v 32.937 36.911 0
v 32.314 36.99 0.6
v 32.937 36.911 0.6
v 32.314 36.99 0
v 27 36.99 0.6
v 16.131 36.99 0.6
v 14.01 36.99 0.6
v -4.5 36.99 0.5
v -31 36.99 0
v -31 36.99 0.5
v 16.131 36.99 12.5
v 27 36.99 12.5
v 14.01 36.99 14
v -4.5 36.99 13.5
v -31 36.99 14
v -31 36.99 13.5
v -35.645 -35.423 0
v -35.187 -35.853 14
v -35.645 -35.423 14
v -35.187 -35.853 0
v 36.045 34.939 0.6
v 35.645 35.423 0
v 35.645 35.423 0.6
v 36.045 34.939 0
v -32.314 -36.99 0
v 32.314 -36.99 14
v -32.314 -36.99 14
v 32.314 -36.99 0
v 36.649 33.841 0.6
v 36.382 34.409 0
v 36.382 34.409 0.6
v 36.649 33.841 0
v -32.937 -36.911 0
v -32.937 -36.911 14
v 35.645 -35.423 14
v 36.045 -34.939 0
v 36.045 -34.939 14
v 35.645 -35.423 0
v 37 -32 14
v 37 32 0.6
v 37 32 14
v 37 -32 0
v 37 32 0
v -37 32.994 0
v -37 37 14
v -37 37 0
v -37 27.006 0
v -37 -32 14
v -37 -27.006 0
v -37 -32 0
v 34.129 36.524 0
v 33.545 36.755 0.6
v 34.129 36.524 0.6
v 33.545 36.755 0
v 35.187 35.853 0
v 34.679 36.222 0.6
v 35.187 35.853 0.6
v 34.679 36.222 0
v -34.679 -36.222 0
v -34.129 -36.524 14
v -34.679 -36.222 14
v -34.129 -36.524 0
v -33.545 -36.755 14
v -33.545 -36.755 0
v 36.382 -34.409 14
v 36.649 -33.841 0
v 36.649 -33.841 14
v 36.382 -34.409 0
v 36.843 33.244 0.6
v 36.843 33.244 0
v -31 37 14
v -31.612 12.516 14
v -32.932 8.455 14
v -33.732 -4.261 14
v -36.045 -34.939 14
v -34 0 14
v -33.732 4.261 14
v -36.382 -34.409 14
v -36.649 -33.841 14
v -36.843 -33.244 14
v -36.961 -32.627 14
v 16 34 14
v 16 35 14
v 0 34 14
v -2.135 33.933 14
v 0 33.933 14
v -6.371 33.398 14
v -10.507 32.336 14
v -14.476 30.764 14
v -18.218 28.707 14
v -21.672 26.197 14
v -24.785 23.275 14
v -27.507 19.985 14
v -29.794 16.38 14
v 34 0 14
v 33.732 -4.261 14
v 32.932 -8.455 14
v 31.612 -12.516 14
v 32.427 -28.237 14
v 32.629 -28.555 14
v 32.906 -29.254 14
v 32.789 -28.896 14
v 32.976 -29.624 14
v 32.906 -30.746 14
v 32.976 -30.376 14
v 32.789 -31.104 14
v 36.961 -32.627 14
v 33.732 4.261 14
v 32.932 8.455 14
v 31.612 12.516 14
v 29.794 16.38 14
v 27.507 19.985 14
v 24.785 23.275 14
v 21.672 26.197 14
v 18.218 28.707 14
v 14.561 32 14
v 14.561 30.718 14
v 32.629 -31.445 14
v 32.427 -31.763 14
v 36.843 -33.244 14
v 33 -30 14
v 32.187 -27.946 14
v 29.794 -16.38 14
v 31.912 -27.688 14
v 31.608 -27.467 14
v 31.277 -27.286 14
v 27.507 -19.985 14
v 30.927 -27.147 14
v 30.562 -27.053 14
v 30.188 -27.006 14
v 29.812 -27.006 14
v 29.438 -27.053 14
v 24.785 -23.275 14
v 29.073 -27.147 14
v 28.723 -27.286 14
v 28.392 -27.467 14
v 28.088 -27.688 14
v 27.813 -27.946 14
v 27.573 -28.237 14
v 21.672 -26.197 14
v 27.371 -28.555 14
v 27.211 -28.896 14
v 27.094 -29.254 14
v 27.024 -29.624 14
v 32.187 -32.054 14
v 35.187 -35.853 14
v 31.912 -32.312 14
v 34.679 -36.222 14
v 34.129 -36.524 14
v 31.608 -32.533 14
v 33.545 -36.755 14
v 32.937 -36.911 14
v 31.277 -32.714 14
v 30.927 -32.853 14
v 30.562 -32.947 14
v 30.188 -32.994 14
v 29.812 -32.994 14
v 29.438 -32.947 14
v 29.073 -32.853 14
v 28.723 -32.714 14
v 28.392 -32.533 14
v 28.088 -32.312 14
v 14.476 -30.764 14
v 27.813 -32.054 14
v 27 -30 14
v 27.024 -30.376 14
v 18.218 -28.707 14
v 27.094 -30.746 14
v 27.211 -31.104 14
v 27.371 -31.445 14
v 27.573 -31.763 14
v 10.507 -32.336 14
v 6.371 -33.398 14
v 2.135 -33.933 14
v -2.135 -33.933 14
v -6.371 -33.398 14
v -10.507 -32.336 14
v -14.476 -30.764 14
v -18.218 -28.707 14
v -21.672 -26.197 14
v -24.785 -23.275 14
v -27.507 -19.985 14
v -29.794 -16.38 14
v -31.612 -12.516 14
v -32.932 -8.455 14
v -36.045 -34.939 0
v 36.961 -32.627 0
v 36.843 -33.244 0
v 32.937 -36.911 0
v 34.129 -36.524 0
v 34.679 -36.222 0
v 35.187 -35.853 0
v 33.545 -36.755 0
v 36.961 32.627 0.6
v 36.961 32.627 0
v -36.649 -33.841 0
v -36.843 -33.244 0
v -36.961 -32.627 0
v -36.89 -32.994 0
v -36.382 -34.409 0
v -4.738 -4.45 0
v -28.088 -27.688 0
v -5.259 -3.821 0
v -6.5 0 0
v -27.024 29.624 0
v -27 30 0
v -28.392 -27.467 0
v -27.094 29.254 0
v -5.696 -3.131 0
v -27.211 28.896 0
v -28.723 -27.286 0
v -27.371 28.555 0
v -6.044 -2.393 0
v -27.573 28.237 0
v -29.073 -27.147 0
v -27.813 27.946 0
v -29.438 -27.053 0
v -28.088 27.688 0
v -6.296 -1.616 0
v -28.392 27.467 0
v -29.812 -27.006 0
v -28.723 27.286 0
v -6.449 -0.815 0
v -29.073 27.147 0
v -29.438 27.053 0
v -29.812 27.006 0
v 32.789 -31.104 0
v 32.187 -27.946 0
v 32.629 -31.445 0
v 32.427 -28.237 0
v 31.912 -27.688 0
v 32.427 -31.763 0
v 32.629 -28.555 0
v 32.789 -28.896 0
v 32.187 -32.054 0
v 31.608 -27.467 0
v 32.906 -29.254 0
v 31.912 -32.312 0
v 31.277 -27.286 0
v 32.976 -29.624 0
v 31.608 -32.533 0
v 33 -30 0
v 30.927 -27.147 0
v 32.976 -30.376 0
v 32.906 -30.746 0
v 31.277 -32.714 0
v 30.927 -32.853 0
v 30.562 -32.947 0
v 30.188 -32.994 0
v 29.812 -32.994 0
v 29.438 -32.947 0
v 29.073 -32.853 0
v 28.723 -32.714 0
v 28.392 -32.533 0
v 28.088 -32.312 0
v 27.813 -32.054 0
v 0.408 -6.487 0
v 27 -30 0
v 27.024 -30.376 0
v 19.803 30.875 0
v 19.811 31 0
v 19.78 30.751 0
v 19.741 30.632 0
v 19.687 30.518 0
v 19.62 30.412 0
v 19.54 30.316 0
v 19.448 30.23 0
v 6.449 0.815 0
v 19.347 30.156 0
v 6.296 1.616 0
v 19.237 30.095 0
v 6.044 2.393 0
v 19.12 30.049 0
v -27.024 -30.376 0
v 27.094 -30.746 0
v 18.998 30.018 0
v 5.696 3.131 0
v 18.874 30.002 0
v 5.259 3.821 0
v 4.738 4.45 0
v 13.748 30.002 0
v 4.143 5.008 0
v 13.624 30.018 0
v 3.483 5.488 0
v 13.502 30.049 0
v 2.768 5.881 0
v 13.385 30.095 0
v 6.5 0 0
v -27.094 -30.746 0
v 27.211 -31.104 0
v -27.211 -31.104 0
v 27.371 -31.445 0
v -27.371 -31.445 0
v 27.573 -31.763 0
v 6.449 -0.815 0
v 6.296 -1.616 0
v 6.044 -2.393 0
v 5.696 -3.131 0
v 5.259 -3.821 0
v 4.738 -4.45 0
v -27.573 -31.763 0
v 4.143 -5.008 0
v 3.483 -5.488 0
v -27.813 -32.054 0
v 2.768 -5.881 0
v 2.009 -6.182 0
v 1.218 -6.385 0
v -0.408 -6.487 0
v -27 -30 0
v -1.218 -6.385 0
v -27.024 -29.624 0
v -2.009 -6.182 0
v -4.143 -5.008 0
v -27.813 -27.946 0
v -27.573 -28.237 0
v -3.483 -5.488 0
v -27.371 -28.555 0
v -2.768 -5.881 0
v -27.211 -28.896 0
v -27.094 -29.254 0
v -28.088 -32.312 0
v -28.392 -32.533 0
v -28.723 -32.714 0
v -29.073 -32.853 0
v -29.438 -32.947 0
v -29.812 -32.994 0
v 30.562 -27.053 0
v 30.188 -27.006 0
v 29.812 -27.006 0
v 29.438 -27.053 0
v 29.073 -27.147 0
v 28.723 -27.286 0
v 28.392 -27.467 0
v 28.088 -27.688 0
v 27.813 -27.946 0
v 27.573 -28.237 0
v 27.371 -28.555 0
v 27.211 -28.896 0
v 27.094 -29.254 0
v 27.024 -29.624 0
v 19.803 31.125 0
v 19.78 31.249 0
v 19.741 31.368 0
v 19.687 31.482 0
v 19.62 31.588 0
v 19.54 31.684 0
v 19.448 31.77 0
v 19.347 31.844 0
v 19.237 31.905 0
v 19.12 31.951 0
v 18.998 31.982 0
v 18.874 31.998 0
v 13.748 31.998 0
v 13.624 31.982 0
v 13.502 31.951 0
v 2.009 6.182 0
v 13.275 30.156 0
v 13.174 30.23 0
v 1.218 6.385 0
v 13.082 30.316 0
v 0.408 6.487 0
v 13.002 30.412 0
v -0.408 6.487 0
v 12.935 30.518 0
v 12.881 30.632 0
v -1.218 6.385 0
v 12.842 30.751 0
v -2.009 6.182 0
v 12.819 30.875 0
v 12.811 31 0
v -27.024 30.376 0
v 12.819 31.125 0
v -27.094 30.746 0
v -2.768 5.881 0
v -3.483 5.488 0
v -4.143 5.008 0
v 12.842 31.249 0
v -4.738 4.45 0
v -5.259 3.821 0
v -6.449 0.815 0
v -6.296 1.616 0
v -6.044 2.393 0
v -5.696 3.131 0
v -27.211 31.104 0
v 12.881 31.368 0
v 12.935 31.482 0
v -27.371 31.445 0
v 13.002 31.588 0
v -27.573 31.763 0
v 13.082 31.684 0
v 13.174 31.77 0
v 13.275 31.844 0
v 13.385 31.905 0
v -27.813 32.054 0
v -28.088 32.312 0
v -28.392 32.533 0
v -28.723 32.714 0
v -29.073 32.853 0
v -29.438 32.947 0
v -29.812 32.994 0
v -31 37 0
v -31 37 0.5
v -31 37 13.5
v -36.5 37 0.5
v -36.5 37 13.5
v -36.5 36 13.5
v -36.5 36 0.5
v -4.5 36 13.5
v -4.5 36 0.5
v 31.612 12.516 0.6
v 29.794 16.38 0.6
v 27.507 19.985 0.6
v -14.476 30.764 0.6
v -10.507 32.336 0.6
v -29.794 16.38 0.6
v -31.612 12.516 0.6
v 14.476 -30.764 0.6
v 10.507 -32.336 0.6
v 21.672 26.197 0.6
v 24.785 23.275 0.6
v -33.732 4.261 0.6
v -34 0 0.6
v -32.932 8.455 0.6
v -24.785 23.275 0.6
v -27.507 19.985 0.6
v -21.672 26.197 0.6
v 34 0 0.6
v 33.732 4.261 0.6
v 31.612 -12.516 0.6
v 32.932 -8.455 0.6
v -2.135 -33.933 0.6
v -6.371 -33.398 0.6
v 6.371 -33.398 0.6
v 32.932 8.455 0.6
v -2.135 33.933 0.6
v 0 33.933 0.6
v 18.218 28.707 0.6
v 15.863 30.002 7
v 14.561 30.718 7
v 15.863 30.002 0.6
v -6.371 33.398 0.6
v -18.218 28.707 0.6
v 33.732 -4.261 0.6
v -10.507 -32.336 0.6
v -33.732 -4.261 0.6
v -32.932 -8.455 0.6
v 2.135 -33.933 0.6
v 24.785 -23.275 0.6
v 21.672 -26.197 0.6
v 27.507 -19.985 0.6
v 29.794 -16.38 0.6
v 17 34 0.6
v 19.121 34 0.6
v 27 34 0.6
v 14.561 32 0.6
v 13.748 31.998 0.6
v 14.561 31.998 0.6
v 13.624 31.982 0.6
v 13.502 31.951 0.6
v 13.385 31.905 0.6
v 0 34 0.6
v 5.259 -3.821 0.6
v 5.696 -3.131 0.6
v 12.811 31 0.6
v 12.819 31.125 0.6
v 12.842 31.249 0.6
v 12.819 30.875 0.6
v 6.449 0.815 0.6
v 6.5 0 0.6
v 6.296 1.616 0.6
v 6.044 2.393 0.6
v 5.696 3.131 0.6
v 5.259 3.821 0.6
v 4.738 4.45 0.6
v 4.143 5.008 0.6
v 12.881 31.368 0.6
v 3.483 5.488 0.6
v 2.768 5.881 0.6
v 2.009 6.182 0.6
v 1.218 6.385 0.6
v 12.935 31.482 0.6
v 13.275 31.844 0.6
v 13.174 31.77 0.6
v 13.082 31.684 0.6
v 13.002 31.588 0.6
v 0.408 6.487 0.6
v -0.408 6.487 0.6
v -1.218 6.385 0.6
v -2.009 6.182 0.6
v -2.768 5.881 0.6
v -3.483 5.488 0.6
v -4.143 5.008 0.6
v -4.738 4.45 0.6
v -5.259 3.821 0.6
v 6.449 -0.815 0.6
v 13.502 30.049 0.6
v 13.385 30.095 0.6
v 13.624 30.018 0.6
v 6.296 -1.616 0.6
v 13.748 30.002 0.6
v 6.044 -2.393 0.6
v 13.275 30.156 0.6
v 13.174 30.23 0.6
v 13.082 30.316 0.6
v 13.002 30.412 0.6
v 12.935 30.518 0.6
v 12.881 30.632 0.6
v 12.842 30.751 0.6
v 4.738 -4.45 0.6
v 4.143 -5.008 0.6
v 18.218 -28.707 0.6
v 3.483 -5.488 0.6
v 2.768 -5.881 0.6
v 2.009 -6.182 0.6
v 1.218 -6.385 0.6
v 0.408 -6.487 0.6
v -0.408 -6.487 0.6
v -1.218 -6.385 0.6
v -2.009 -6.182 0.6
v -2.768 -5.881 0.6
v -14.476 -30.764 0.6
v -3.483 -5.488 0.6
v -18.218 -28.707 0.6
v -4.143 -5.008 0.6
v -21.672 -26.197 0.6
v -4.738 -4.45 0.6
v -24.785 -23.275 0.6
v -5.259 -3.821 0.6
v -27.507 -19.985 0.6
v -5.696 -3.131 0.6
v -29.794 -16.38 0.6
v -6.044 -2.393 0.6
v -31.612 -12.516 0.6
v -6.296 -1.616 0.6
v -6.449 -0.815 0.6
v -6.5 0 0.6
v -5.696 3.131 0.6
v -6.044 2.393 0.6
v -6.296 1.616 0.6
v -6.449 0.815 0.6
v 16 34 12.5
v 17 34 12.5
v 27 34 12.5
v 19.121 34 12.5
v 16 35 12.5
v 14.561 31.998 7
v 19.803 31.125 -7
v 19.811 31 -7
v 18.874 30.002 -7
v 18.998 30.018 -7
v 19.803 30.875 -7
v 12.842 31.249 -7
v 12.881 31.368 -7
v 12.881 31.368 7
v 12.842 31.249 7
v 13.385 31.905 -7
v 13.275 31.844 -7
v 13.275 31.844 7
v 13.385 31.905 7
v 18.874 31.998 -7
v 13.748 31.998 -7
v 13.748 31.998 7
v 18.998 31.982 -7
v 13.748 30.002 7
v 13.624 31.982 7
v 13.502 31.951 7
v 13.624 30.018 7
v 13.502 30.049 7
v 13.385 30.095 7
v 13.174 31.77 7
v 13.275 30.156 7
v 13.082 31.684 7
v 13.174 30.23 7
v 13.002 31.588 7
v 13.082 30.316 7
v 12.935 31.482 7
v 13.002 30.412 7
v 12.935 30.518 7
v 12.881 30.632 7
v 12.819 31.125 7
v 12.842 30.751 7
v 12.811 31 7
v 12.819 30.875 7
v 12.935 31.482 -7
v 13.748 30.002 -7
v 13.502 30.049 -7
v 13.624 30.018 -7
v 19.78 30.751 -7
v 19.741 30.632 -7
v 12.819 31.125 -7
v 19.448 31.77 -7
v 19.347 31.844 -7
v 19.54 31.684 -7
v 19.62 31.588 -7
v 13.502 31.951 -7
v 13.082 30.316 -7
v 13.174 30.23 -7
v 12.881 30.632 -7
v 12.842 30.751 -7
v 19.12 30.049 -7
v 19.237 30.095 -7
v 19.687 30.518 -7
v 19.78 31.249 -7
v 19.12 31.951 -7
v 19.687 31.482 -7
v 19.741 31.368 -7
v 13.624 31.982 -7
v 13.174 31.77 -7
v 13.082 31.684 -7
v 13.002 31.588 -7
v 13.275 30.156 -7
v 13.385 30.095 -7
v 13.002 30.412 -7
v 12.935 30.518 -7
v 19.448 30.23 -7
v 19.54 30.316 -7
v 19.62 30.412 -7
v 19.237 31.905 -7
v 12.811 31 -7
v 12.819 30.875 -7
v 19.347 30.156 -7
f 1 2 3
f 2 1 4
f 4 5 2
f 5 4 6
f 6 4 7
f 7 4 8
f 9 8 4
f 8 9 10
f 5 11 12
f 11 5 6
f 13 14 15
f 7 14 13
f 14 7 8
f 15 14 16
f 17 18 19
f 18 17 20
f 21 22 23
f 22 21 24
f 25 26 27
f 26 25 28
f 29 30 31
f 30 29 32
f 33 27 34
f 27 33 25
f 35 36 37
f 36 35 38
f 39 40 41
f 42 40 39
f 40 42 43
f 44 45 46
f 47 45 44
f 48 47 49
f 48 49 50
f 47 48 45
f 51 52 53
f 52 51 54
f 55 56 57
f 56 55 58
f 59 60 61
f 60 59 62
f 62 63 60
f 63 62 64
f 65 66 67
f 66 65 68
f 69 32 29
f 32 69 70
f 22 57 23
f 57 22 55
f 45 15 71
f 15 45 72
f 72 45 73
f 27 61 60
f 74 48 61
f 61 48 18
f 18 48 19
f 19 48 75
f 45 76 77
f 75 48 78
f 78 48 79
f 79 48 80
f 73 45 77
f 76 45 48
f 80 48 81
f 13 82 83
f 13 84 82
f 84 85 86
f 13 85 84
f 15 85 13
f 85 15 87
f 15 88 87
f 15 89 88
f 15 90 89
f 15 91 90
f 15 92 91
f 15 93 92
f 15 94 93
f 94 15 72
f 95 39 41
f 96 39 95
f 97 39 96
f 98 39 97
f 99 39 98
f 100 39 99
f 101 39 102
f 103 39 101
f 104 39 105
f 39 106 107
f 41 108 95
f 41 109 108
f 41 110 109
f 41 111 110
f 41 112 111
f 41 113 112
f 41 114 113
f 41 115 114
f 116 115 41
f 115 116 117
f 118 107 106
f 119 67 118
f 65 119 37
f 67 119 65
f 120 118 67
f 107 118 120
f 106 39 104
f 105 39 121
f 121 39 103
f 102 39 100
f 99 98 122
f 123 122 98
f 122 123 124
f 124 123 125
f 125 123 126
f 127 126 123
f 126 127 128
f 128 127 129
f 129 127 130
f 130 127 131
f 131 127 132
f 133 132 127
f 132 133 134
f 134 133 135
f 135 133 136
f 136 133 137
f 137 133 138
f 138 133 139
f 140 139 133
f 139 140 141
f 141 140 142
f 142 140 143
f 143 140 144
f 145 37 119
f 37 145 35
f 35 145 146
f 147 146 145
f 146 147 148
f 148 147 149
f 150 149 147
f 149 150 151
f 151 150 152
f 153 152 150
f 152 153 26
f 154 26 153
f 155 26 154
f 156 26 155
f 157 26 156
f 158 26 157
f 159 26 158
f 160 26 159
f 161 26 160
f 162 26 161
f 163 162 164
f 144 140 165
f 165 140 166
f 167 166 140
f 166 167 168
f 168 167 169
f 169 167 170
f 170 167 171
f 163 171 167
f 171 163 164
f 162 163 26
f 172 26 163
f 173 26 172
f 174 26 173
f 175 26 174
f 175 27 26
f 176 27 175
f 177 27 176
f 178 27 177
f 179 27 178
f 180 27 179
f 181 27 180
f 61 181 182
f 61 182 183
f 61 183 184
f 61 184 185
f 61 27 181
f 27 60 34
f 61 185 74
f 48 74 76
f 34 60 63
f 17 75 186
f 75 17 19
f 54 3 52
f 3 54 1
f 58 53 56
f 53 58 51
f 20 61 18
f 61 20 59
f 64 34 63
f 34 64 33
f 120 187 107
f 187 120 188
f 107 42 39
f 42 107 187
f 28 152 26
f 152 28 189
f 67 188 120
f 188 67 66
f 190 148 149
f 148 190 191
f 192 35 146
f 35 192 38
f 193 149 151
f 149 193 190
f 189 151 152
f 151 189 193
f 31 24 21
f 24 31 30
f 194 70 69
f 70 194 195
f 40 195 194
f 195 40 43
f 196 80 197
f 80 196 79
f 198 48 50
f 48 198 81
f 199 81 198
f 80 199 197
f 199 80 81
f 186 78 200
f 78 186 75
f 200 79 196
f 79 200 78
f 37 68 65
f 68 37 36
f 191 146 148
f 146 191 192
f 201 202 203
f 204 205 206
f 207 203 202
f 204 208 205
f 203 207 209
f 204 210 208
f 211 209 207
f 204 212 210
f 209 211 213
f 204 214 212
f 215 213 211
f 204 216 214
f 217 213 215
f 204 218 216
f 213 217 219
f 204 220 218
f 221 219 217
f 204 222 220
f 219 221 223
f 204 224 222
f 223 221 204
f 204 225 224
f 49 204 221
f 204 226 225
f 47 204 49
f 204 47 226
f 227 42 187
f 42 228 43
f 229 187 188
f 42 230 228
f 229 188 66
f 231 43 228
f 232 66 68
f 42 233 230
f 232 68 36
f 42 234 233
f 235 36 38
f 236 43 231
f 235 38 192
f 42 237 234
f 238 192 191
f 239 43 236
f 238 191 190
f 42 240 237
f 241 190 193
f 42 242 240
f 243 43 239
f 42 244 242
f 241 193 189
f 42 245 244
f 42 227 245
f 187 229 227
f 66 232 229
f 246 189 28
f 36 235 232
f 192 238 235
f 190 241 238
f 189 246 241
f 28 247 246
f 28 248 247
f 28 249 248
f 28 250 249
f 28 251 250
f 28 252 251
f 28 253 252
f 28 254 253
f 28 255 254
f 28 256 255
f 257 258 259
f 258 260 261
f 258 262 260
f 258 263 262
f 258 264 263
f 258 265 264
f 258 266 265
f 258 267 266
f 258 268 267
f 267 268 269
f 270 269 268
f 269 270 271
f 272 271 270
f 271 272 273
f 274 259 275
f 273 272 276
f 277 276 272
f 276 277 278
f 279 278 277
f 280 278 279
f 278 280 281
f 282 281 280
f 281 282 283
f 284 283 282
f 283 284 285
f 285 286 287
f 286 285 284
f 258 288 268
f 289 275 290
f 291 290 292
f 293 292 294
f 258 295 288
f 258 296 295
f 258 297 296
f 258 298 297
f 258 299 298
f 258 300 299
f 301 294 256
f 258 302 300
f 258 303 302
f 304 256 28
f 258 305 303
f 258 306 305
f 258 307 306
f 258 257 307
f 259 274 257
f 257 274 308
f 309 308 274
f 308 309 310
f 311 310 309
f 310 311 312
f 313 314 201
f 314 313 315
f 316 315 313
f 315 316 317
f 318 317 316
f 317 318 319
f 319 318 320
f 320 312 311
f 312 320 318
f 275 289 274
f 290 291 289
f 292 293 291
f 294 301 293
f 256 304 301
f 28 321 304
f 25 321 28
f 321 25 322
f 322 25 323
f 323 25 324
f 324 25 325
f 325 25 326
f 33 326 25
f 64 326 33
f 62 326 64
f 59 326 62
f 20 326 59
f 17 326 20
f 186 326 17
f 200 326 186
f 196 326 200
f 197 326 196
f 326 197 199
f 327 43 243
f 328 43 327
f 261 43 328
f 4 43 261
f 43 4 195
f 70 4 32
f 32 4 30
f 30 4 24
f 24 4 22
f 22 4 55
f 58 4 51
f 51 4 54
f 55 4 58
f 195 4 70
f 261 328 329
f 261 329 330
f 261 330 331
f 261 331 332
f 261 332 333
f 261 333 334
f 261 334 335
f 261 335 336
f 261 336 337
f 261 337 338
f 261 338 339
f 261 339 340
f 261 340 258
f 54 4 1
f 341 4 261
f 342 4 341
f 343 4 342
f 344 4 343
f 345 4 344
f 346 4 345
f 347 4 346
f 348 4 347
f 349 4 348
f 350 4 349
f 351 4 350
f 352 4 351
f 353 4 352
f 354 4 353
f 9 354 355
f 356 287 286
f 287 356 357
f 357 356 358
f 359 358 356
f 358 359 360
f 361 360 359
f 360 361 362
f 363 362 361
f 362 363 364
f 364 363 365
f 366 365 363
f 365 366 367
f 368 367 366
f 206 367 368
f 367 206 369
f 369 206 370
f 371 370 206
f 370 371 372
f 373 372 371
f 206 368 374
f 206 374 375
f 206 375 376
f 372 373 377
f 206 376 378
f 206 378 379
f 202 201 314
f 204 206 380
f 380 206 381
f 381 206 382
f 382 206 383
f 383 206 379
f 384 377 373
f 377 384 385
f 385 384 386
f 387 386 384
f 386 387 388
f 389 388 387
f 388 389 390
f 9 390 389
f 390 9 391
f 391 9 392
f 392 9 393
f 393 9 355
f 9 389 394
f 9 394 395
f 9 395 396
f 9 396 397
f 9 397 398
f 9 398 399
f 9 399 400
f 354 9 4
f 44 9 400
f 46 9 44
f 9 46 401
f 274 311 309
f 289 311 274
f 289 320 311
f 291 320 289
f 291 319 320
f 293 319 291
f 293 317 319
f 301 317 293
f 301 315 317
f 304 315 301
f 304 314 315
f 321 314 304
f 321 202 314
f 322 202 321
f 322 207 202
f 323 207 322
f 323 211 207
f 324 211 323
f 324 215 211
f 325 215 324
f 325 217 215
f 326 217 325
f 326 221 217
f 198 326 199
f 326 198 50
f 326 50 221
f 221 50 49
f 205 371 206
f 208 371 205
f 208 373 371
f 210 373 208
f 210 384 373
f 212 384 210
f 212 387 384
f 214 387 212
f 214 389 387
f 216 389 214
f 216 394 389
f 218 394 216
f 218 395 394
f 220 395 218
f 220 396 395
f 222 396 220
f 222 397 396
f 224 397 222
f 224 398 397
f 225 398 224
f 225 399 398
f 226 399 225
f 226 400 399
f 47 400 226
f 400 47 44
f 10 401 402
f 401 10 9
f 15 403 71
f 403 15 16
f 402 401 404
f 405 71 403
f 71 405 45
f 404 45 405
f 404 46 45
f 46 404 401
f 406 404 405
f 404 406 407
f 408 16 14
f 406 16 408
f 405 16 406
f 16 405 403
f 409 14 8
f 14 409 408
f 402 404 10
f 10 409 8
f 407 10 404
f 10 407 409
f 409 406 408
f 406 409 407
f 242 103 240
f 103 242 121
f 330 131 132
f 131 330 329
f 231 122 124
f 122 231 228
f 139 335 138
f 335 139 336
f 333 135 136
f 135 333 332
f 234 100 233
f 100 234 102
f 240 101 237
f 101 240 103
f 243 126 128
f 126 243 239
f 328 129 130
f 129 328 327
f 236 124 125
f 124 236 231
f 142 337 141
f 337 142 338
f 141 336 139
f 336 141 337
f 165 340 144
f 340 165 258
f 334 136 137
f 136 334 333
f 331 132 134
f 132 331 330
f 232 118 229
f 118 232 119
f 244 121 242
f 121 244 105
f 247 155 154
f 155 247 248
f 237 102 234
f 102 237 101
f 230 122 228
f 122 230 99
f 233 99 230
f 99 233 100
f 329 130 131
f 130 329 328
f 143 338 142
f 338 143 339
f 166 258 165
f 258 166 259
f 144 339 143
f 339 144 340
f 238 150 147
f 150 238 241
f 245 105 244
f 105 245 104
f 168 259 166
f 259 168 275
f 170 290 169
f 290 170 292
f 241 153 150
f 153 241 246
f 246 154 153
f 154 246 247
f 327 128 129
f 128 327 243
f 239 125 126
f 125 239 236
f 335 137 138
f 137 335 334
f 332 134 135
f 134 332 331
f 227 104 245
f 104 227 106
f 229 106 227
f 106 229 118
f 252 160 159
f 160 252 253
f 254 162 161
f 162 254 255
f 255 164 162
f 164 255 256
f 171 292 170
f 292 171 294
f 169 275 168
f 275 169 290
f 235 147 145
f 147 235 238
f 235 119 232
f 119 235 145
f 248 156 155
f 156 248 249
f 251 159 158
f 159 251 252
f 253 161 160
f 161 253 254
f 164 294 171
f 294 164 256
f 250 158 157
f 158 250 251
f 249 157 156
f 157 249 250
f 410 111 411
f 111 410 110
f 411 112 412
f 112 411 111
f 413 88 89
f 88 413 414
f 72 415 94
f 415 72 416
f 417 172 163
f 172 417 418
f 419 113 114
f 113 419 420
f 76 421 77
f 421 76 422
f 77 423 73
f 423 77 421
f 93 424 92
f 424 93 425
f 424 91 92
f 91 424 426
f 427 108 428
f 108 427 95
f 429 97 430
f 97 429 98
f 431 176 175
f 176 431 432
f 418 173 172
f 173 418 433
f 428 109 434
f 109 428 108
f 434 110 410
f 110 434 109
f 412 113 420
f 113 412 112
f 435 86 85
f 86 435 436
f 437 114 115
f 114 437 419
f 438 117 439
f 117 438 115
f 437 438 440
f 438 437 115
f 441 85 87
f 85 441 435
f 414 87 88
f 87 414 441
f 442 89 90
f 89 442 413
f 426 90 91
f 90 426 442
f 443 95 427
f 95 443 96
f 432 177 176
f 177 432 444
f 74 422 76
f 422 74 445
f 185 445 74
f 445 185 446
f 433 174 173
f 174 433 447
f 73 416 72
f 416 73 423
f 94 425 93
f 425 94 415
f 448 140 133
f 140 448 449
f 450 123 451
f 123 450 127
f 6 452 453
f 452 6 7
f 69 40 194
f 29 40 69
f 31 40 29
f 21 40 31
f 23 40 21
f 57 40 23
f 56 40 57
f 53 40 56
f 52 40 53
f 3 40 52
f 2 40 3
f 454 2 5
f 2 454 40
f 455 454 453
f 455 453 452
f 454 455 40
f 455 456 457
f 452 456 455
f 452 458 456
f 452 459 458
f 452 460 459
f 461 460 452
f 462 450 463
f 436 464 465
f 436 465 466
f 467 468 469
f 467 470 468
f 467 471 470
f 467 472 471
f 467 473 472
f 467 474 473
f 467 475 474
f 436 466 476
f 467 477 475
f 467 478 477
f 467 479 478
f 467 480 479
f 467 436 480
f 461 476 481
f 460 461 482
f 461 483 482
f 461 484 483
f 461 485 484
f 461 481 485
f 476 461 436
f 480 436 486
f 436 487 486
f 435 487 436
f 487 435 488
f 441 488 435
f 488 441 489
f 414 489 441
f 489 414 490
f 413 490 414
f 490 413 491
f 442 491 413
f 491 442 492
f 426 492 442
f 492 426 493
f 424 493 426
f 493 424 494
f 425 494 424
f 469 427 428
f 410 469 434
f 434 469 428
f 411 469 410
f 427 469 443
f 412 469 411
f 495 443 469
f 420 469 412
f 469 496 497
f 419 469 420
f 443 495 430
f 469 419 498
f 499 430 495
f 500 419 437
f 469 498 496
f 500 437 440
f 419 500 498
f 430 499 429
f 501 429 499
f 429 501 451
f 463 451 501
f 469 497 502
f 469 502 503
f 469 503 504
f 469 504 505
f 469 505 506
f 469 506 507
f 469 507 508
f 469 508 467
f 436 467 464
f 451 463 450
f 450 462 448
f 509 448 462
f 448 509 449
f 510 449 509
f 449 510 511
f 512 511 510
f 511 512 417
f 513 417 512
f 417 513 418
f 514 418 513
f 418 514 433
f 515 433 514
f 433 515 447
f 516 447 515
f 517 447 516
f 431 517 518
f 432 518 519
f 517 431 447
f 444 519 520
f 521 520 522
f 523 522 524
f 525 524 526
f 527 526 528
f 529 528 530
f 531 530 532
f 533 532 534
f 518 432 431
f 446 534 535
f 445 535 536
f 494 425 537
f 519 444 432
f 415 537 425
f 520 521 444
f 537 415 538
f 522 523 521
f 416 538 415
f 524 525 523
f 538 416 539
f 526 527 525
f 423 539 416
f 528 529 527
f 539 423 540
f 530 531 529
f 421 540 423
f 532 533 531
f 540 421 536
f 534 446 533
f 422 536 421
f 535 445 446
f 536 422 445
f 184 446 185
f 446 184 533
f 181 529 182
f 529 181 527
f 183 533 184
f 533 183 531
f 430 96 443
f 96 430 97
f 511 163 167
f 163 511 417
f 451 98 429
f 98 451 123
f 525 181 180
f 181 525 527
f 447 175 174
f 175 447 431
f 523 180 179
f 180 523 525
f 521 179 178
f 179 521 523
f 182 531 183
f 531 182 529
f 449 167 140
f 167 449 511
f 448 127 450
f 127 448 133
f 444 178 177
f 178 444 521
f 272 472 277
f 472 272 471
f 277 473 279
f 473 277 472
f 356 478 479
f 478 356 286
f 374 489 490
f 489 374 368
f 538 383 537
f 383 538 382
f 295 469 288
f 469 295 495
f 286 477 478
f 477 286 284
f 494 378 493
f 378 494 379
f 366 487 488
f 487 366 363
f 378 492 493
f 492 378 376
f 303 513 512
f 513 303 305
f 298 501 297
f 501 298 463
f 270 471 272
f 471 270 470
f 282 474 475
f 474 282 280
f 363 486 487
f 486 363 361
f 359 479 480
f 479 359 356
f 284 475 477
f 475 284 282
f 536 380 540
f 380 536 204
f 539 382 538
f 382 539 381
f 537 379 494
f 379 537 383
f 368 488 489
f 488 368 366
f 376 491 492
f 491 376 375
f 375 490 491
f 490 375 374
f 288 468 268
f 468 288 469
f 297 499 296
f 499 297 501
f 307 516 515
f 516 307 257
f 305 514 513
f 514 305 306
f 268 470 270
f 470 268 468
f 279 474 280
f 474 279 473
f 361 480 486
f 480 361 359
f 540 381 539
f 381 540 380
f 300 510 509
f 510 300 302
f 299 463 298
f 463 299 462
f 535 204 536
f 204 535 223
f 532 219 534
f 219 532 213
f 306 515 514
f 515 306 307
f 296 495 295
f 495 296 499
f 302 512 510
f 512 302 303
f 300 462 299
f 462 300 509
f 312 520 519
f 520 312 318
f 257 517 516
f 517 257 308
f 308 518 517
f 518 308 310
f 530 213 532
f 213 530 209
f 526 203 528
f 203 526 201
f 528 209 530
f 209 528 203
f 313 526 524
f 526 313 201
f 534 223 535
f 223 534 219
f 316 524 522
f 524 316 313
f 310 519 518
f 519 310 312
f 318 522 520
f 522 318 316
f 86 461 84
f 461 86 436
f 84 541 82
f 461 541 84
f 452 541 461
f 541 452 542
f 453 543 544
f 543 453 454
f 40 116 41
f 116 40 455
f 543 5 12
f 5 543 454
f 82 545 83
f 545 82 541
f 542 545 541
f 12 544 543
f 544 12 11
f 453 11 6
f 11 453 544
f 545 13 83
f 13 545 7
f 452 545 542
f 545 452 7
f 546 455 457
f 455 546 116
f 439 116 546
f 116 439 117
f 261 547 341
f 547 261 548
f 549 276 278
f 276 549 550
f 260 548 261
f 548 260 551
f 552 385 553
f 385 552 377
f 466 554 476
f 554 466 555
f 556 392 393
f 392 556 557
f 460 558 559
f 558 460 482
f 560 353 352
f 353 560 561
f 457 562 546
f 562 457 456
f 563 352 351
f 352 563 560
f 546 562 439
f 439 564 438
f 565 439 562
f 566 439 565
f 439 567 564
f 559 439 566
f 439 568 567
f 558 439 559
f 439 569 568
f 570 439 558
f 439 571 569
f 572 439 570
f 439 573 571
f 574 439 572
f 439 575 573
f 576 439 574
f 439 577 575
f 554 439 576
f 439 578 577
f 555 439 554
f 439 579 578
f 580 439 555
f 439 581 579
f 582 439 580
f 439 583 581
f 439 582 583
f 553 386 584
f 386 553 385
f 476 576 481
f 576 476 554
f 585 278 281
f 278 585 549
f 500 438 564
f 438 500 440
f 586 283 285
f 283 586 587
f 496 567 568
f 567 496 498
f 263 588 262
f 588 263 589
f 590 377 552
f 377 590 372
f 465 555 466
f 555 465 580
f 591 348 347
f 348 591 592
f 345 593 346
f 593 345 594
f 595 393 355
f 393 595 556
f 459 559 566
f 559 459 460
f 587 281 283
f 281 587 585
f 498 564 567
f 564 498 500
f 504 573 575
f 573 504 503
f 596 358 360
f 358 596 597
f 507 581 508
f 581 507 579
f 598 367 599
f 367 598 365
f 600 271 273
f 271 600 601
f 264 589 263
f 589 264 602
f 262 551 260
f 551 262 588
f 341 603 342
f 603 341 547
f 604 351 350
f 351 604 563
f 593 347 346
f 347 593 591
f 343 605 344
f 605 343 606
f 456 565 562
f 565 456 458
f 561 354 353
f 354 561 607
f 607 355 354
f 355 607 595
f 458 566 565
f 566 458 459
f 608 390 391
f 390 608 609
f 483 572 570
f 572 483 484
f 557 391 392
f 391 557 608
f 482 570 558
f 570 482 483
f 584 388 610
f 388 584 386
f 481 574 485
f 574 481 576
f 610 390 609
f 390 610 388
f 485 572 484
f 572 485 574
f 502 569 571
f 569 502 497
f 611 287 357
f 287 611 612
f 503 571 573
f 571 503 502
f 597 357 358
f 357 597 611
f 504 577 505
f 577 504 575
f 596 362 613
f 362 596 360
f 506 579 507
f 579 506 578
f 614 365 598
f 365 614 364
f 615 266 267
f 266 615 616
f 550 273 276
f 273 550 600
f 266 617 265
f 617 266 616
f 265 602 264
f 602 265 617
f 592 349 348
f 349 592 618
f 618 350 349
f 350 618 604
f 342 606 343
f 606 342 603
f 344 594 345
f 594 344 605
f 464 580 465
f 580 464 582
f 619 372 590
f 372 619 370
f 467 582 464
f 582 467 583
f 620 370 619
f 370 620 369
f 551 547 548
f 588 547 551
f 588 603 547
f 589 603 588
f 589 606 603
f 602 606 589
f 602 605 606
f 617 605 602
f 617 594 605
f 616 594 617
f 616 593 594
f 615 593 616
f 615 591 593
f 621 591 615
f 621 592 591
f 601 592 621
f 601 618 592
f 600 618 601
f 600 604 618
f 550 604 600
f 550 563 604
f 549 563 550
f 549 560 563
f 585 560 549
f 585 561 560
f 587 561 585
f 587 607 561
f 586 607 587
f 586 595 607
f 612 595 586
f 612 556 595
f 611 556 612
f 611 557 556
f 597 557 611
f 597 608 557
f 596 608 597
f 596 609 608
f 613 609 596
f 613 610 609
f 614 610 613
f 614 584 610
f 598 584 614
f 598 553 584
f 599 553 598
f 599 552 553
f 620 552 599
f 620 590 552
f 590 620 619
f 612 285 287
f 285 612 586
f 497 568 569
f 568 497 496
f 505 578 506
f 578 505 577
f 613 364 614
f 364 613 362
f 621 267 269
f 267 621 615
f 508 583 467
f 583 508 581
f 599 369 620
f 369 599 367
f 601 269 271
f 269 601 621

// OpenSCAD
$fn = 50;


union() {
	difference() {
		union() {
			hull() {
				translate(v = [-32.0000000000, 32.0000000000, 0]) {
					cylinder(h = 14, r = 5);
				}
				translate(v = [32.0000000000, 32.0000000000, 0]) {
					cylinder(h = 14, r = 5);
				}
				translate(v = [-32.0000000000, -32.0000000000, 0]) {
					cylinder(h = 14, r = 5);
				}
				translate(v = [32.0000000000, -32.0000000000, 0]) {
					cylinder(h = 14, r = 5);
				}
			}
			translate(v = [-37.0000000000, 31.0000000000, 0]) {
				cube(size = [6, 6, 14]);
			}
		}
		union() {
			translate(v = [-37.5000000000, -30.0000000000, -250.0000000000]) {
				rotate(a = [0, 0, 0]) {
					difference() {
						union() {
							hull() {
								translate(v = [7.5000000000, 0, 0]) {
									cylinder(h = 250, r = 3.0000000000, r1 = 3.0000000000, r2 = 3.0000000000);
								}
								translate(v = [-7.5000000000, 0, 0]) {
									cylinder(h = 250, r = 3.0000000000, r1 = 3.0000000000, r2 = 3.0000000000);
								}
							}
						}
						union();
					}
				}
			}
			translate(v = [-37.5000000000, 30.0000000000, -250.0000000000]) {
				rotate(a = [0, 0, 0]) {
					difference() {
						union() {
							hull() {
								translate(v = [7.5000000000, 0, 0]) {
									cylinder(h = 250, r = 3.0000000000, r1 = 3.0000000000, r2 = 3.0000000000);
								}
								translate(v = [-7.5000000000, 0, 0]) {
									cylinder(h = 250, r = 3.0000000000, r1 = 3.0000000000, r2 = 3.0000000000);
								}
							}
						}
						union();
					}
				}
			}
			translate(v = [-36.5000000000, 36.0000000000, 0.5000000000]) {
				cube(size = [32, 1, 13.0000000000]);
			}
			translate(v = [30.0000000000, -30.0000000000, 0]) {
				cylinder(h = 100, r = 3.0000000000);
			}
			translate(v = [0, 0, 0.6000000000]) {
				cylinder(h = 16.4000000000, r = 34.0000000000);
			}
			translate(v = [0, 0, -7.0000000000]) {
				cylinder(h = 14, r = 6.5000000000);
			}
			translate(v = [0.0000000000, 32.0000000000, 0.6000000000]) {
				cube(size = [37.0000000000, 2, 16.4000000000]);
			}
			translate(v = [27.0000000000, 32.0000000000, 0.6000000000]) {
				cube(size = [10, 5, 16.4000000000]);
			}
			translate(v = [16.0000000000, 32.0000000000, 12.5000000000]) {
				cube(size = [21, 5, 1.5000000000]);
			}
			translate(v = [13.2500000000, 37.7500000000, 0.6000000000]) {
				rotate(a = [0, 0, -45]) {
					cube(size = [7.5000000000, 1.5000000000, 16.4000000000]);
				}
			}
			translate(v = [7.0610000000, 30.0000000000, 0.6000000000]) {
				cube(size = [7.5000000000, 2, 13.4000000000]);
			}
		}
	}
	union() {
		translate(v = [16.3110000000, 31.0000000000, -7.0000000000]) {
			rotate(a = [0, 0, 0]) {
				difference() {
					union() {
						#hull() {
							#translate(v = [2.5000000000, 0, 0]) {
								cylinder(h = 14, r = 1.0000000000, r1 = 1.0000000000, r2 = 1.0000000000);
							}
							#translate(v = [-2.5000000000, 0, 0]) {
								cylinder(h = 14, r = 1.0000000000, r1 = 1.0000000000, r2 = 1.0000000000);
							}
						}
					}
					union();
				}
			}
		}
	}
}
